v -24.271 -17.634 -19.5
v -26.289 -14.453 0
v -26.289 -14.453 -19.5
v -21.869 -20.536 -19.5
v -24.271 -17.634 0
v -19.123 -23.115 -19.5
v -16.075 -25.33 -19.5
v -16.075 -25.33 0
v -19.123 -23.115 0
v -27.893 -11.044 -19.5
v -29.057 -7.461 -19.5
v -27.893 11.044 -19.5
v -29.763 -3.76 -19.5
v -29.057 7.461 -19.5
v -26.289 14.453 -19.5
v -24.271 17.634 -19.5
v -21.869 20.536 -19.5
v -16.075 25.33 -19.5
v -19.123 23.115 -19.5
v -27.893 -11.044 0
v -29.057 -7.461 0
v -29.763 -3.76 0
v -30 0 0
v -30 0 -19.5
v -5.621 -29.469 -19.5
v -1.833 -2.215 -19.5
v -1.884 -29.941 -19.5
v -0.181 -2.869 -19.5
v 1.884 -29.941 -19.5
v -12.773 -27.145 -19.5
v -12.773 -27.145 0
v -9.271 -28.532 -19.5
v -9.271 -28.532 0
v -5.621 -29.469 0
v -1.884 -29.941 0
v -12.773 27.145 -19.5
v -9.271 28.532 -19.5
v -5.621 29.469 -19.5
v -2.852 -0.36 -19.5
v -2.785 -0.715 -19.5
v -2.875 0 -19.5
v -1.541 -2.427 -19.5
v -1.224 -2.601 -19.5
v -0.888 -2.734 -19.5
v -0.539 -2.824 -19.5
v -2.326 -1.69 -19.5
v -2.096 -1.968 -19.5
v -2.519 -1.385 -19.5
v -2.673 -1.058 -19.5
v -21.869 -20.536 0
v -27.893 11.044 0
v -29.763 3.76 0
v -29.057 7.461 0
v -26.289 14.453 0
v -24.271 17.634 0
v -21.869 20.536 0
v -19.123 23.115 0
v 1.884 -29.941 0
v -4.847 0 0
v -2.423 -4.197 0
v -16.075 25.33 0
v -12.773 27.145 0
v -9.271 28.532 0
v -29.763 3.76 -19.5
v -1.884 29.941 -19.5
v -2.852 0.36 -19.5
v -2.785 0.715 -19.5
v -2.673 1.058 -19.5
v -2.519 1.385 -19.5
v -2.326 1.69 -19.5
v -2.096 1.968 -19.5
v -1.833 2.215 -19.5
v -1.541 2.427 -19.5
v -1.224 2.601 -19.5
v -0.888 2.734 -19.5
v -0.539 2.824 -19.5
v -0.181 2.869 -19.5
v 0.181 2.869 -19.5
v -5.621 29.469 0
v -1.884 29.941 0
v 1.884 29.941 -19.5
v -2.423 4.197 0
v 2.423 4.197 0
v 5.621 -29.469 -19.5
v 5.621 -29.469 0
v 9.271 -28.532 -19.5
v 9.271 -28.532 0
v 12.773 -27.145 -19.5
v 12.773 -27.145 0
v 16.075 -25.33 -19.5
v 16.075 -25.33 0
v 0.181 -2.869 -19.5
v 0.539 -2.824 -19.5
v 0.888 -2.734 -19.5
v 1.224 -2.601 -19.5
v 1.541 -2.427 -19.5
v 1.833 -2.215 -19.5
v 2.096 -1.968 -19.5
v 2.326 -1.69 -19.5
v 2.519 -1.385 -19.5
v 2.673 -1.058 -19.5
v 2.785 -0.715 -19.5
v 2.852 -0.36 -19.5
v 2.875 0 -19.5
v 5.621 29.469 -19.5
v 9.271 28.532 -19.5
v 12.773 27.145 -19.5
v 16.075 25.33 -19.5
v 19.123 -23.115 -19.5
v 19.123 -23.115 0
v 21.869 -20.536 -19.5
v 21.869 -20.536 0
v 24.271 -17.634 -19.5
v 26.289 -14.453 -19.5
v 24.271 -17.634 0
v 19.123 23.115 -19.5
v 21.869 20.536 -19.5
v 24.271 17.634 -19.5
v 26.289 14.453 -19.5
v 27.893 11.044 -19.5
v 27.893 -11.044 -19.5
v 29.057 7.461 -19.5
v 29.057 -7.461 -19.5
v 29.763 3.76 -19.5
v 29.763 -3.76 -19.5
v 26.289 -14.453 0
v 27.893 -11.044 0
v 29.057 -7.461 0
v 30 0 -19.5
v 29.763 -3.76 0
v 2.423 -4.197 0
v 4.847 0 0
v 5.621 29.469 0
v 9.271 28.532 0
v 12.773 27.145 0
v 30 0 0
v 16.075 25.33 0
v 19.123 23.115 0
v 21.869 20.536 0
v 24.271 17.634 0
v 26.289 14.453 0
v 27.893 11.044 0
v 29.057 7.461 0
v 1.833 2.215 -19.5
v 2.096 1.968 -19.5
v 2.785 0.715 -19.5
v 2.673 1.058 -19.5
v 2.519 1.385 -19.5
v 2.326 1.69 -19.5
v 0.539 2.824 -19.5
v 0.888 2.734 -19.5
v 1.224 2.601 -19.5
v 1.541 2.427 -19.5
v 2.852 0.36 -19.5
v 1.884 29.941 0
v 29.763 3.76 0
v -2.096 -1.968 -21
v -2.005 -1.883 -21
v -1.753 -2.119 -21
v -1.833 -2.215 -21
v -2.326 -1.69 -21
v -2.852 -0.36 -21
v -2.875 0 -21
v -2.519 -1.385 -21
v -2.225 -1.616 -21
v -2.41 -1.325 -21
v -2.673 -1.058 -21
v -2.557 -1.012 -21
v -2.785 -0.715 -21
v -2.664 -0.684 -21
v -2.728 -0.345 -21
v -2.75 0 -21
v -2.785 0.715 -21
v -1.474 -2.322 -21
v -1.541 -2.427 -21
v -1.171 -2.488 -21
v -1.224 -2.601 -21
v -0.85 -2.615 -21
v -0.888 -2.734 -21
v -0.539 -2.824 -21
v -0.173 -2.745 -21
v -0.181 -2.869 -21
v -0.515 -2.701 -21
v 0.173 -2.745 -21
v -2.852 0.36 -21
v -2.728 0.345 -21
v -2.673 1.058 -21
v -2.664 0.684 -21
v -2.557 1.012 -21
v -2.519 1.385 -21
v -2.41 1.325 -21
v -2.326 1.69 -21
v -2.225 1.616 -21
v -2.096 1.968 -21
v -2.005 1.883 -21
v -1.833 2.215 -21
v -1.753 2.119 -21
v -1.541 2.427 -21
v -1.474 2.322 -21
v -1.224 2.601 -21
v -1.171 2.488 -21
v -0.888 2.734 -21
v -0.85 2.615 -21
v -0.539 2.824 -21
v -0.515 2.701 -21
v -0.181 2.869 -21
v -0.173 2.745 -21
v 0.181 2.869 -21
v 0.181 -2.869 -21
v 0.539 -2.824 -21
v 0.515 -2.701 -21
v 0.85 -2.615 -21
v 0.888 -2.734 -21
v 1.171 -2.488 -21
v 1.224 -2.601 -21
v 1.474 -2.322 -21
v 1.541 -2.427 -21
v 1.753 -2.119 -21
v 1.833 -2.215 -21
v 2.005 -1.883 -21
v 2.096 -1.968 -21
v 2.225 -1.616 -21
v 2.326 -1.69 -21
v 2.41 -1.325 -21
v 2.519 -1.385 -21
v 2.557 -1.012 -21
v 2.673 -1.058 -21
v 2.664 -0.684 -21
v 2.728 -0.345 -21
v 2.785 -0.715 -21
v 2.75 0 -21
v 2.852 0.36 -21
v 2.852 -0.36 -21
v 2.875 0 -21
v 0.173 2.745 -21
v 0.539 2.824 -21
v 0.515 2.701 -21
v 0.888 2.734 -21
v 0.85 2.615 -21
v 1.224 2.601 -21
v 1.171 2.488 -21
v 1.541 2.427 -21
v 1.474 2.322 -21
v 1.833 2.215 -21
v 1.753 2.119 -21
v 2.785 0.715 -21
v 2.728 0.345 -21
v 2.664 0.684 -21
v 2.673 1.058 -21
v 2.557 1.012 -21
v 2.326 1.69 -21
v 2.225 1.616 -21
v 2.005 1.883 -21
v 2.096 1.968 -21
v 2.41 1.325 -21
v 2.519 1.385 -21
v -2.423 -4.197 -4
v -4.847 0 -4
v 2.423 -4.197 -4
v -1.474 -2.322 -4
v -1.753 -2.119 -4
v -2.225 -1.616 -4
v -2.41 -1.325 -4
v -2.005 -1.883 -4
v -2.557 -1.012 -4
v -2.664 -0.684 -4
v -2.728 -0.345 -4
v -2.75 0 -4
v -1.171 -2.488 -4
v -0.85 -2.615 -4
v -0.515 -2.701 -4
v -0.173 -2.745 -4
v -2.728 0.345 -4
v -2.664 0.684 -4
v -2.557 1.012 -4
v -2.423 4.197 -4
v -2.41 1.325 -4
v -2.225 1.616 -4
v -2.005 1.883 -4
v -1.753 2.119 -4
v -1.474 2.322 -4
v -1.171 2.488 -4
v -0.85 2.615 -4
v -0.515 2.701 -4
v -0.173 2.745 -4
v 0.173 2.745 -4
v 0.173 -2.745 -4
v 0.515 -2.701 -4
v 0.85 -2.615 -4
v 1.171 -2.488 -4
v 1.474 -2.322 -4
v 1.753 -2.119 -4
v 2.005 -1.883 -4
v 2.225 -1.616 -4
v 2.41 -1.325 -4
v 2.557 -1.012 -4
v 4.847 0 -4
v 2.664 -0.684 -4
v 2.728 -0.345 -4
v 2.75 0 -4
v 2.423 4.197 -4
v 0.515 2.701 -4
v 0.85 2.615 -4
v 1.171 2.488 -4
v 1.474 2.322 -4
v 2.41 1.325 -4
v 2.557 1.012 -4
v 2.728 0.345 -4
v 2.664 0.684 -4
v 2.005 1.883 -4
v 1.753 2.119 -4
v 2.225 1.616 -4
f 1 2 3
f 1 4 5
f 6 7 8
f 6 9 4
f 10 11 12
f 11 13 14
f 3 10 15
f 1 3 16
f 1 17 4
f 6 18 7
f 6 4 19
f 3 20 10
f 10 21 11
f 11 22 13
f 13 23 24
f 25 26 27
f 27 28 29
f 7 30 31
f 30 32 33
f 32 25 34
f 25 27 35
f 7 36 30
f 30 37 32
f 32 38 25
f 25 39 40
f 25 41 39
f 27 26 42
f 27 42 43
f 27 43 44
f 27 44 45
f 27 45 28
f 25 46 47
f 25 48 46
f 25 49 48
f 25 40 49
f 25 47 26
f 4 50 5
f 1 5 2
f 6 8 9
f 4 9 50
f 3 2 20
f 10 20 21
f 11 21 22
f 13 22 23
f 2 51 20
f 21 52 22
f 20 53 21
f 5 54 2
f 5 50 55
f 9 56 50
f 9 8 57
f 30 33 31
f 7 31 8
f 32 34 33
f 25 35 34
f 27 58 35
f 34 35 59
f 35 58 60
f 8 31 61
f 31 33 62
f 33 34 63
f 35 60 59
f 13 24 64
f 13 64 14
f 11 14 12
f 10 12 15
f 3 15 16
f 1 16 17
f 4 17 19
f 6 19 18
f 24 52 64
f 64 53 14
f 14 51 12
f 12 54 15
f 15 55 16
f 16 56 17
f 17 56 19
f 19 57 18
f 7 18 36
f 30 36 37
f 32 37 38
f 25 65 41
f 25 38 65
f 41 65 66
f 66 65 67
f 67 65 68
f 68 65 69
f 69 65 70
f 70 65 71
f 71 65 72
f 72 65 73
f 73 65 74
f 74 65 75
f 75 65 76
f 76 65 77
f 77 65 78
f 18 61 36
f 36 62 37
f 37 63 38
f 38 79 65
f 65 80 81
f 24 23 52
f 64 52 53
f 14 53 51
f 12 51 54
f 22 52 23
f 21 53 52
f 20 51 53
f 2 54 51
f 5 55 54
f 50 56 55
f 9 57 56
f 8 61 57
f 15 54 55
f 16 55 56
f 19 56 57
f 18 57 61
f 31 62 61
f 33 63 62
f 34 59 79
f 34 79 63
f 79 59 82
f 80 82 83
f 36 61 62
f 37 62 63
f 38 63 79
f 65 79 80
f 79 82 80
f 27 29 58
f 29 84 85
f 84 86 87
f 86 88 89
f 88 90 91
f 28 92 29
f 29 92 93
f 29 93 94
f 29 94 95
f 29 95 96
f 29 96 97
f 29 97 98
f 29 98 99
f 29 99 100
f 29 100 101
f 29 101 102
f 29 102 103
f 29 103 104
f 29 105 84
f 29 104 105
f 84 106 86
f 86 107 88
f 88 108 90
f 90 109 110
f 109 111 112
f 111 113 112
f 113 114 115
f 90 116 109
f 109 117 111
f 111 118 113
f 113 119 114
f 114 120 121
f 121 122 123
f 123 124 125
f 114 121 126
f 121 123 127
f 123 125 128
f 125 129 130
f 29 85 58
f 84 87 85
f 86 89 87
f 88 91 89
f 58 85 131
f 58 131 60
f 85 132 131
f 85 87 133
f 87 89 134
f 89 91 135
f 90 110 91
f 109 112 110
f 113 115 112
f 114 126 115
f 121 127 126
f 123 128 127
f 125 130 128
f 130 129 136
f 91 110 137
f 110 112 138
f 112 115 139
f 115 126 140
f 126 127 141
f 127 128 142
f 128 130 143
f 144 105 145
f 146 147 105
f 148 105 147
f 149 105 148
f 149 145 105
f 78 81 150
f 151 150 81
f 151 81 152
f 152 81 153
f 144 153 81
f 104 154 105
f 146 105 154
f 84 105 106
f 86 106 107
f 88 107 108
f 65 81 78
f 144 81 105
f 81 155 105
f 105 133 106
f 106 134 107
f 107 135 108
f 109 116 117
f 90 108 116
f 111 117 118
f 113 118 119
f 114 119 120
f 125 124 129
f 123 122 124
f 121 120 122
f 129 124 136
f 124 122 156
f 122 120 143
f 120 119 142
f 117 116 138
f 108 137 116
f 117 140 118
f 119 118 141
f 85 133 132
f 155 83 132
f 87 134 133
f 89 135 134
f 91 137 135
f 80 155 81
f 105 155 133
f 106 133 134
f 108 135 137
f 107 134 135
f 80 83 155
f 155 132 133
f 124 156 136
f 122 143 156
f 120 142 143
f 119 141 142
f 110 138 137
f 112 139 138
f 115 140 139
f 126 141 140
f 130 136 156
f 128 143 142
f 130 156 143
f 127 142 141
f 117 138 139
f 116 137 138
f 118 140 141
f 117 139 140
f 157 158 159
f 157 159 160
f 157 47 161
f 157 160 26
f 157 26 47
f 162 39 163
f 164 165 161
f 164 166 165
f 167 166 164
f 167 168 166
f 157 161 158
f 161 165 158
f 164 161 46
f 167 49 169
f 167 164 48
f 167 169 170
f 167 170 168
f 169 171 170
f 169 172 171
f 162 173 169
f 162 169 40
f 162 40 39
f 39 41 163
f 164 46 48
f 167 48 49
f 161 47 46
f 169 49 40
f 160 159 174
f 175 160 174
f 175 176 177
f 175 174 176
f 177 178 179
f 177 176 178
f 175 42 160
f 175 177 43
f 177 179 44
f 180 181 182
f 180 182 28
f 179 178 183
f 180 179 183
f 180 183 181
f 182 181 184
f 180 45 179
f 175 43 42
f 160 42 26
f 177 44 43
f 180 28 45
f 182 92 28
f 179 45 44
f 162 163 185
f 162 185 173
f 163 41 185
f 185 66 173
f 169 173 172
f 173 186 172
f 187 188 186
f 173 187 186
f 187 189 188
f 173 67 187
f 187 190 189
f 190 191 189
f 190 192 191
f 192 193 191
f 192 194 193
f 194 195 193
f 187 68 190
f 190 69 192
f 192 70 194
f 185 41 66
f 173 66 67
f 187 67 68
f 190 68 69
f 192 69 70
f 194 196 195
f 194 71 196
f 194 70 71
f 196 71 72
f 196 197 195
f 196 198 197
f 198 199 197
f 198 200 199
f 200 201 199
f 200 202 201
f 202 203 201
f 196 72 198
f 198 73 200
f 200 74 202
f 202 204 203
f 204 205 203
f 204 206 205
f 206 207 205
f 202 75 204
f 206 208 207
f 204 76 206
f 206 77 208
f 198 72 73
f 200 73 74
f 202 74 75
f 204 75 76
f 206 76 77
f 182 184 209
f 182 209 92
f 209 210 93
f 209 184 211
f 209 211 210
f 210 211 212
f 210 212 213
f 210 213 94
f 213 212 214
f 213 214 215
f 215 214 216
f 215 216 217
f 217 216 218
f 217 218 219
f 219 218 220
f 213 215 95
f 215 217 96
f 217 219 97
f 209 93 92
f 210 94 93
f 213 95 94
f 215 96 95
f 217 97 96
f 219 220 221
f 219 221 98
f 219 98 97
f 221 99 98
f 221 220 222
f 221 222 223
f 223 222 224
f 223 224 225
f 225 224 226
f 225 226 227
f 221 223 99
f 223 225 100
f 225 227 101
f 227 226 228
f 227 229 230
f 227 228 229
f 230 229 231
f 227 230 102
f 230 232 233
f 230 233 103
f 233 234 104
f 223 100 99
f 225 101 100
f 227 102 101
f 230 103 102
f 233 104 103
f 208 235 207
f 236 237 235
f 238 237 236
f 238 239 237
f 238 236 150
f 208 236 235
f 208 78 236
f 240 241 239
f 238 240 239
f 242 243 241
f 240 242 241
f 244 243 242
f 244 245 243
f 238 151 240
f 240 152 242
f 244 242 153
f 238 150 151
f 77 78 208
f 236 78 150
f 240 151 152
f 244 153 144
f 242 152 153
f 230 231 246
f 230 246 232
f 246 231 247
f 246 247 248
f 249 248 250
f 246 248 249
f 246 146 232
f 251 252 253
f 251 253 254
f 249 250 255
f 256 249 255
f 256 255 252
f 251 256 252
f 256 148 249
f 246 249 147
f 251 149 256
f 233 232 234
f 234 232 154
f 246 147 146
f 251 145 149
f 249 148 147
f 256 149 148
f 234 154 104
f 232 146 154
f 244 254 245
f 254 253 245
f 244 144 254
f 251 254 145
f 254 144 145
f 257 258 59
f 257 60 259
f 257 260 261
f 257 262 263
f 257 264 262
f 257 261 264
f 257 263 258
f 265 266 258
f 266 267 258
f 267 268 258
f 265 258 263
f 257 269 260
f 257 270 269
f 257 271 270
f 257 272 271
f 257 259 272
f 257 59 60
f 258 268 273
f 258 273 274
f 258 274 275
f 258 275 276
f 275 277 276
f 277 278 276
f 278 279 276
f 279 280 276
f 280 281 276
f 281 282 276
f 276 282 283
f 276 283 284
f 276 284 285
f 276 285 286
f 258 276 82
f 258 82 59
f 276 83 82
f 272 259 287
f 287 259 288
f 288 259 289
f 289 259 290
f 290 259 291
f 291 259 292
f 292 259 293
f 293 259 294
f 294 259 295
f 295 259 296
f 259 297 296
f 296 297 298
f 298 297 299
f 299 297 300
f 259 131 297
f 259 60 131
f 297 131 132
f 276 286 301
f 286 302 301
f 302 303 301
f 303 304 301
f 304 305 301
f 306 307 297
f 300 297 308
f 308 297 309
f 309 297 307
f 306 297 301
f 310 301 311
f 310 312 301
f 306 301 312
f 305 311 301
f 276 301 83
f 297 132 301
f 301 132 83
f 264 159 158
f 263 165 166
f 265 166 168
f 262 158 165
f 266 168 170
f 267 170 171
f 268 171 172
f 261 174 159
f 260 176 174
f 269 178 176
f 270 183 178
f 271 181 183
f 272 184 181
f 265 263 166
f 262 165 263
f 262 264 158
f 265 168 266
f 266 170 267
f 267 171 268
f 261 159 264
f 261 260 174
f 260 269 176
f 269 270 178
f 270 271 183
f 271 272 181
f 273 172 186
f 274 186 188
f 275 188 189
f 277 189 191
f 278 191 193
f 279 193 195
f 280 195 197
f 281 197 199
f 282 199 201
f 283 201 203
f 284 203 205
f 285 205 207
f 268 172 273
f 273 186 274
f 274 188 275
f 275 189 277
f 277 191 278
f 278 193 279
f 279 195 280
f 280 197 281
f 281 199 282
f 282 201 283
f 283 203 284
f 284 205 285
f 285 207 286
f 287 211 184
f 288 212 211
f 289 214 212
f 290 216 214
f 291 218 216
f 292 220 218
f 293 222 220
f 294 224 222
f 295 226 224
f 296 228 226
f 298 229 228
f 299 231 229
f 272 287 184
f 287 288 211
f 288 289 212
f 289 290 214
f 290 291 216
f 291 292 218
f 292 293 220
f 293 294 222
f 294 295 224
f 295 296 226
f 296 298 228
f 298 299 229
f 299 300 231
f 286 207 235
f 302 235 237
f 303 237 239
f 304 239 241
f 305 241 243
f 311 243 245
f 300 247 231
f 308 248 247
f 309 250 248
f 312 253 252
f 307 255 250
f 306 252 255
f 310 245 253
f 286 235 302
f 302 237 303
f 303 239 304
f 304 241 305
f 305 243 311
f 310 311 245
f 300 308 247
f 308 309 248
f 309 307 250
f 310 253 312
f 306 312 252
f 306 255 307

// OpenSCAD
$fn = 50;

difference() {
	union() {
		translate(v = [0, 0, -19.5]) {
			cylinder(h = 19.5, r = 30.0);
		}
		#translate(v = [0, 0, -21.0]) {
			cylinder(h = 21, r = 2.875);
		}
	}
	union() {
		translate(v = [0, 0, 0]) {
			rotate(a = [0, 0, 0]) {
				difference() {
					union() {
						translate(v = [0, 0, -4]) {
							linear_extrude(height = 4) {
								polygon(points = [[4.8468, 0.0], [2.4234000000000004, 4.197451927062417], [-2.423399999999999, 4.197451927062417], [-4.8468, 5.935618106107392e-16], [-2.423400000000002, -4.197451927062416], [2.423399999999997, -4.197451927062419]]);
							}
						}
					}
					union();
				}
			}
		}
		#translate(v = [0, 0, -100.0]) {
			cylinder(h = 200, r = 2.75);
		}
	}
}
